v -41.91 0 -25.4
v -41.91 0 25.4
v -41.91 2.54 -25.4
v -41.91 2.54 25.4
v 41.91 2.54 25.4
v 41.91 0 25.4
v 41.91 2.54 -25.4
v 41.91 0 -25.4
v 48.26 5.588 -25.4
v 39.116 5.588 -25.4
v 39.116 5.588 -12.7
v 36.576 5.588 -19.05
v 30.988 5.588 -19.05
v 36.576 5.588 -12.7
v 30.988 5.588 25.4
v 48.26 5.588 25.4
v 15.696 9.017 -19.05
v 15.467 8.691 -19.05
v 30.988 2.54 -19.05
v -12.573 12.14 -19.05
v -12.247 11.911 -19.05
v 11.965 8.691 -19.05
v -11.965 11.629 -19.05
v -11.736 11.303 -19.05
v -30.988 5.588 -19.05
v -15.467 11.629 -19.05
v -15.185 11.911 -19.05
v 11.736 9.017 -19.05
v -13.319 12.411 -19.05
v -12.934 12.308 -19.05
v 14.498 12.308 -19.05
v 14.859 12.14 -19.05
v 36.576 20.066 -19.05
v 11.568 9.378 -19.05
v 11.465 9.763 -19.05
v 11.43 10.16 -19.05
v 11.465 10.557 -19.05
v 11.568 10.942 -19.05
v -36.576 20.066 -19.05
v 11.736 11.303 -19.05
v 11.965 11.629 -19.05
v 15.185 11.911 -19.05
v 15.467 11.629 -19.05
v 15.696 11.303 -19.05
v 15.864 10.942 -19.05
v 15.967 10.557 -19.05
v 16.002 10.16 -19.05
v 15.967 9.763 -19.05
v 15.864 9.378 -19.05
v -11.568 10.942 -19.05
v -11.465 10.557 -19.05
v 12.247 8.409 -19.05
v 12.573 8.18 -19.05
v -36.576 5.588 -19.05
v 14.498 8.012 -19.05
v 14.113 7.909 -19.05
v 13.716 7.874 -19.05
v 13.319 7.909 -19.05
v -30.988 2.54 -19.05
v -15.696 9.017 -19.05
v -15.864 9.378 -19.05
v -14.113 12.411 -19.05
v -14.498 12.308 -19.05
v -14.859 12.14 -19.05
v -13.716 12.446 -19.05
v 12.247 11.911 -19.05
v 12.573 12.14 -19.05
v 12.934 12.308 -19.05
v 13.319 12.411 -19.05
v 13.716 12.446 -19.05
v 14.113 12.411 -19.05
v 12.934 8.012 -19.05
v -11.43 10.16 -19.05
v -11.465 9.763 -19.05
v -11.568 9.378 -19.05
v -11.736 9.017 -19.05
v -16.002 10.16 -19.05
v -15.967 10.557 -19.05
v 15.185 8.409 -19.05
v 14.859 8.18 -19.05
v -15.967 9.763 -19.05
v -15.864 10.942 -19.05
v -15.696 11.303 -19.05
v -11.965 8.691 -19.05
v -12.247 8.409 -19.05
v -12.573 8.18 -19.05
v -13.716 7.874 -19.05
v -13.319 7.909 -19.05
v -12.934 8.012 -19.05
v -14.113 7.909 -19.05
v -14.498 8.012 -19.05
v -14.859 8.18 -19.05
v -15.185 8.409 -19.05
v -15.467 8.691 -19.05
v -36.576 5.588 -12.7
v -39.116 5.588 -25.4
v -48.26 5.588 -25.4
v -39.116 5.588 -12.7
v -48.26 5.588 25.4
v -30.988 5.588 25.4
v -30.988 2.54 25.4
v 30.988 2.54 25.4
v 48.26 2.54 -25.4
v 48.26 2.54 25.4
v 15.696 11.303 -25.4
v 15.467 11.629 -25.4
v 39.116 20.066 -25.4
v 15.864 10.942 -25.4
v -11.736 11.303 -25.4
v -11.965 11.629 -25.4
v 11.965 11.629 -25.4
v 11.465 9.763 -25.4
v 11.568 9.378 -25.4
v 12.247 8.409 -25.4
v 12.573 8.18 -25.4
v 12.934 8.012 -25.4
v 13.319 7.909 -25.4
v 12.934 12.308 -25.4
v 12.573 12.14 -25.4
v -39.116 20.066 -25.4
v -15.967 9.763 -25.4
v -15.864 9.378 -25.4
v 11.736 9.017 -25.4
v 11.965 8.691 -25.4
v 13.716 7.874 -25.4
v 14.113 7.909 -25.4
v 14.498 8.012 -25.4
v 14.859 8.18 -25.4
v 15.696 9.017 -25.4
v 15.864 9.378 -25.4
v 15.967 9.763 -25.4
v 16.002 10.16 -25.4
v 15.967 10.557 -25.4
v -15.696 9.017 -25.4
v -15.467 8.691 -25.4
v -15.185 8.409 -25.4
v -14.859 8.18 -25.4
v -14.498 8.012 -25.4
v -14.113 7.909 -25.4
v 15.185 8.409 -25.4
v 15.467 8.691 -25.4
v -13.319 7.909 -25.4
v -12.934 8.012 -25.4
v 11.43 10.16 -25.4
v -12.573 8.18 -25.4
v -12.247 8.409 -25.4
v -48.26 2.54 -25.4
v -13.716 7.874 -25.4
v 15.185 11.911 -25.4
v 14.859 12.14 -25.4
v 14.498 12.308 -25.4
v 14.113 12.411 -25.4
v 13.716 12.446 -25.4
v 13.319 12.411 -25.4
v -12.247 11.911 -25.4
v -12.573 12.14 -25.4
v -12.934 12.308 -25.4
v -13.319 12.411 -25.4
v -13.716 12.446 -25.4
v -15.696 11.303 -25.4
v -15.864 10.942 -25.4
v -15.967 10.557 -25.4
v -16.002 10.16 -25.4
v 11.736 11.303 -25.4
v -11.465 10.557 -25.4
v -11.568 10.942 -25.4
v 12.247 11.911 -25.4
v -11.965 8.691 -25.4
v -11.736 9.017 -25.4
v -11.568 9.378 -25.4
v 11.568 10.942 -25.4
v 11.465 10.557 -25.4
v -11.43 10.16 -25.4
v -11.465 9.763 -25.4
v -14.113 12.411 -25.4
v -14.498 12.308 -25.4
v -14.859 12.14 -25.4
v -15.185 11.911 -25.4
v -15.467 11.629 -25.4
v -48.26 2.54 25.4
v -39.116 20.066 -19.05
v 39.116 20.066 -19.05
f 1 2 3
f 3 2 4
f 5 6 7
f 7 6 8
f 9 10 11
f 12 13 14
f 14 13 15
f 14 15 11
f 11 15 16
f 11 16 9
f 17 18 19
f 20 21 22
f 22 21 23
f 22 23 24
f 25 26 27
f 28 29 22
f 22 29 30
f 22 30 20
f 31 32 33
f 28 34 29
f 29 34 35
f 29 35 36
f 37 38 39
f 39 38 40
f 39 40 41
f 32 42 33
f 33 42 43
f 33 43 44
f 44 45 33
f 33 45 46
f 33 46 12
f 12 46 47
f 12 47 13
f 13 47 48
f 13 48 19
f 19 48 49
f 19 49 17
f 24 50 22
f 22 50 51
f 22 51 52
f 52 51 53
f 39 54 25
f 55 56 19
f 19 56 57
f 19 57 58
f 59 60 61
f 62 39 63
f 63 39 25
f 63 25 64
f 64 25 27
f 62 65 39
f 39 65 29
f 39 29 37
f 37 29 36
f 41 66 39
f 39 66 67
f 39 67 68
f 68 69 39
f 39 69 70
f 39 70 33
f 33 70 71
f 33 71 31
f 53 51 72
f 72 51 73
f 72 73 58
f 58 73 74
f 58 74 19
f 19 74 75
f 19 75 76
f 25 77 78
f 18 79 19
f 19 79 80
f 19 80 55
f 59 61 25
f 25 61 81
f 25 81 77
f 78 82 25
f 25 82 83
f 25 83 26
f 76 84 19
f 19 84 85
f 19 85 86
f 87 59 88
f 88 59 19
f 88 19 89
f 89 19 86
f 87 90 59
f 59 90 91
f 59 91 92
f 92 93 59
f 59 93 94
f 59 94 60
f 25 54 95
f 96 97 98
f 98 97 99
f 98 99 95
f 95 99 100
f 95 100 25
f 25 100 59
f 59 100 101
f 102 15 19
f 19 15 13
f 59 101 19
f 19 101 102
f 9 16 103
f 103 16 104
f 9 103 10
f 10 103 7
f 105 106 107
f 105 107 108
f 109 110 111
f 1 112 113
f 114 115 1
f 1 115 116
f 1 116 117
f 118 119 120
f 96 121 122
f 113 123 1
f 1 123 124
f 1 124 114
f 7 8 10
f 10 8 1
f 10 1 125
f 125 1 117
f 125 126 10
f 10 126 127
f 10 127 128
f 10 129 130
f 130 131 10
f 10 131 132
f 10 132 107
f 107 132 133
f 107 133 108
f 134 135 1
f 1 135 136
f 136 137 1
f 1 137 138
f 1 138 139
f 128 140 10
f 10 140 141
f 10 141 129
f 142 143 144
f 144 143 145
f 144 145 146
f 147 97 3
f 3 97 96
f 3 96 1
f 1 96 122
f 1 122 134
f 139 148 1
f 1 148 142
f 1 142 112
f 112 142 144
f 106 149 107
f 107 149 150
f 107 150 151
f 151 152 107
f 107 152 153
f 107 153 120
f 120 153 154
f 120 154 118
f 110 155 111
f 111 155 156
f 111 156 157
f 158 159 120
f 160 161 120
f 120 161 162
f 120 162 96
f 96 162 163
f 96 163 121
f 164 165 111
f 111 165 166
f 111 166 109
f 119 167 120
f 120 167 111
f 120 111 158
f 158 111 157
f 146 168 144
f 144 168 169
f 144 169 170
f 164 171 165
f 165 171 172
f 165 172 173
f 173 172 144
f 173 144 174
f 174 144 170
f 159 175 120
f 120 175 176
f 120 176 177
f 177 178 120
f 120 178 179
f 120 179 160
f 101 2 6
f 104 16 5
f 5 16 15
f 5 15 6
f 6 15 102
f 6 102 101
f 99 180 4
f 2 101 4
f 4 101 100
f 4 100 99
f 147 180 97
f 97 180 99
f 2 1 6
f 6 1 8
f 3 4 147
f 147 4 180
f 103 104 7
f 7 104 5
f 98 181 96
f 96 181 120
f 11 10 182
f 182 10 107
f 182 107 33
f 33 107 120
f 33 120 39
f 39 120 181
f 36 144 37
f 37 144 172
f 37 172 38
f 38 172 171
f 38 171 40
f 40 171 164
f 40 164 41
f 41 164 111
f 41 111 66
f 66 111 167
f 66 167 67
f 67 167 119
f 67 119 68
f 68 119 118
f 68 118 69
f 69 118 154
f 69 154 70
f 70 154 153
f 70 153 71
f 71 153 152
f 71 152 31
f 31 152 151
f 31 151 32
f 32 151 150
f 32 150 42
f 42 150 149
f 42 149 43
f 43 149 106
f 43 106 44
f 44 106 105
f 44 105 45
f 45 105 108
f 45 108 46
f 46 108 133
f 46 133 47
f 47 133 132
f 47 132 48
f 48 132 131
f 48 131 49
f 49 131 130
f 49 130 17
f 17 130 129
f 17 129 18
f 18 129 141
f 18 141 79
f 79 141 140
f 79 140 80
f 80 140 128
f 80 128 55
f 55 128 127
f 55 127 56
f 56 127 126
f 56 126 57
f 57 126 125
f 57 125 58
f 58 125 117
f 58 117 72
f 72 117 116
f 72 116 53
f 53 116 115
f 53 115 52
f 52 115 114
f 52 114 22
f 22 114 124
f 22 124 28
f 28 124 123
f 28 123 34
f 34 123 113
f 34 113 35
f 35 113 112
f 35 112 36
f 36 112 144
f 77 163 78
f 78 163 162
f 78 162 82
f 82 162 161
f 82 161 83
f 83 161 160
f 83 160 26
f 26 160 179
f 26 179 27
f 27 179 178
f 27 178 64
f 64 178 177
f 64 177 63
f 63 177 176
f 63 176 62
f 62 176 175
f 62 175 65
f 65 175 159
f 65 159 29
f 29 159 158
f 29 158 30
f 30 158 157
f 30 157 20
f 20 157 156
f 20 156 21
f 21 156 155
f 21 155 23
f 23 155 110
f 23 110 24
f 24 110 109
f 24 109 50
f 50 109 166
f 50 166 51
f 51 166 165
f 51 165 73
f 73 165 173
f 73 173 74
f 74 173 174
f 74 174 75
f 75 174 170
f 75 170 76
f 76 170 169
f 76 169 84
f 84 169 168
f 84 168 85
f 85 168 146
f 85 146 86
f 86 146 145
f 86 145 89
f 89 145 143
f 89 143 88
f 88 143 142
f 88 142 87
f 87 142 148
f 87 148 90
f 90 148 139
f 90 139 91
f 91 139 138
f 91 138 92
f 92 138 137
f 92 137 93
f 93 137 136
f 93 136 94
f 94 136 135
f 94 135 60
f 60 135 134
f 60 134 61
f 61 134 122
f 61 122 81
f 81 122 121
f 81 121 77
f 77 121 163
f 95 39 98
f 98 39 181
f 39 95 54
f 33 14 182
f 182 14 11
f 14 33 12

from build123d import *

# Parameters (mm, degrees)
SKETCH1_W           = 96.52
SKETCH1_H           = 50.8
BOSS_EXTRUDE1_DEPTH = 5.588
SKETCH2_W           = 61.976
SKETCH2_H           = 50.8
CUT_EXTRUDE2_DEPTH  = 3.048
SKETCH3_W           = 6.35
SKETCH3_H           = 50.8
CUT_EXTRUDE3_DEPTH  = 2.54
SKETCH4_W           = 78.232
SKETCH4_H           = 6.35
BOSS_EXTRUDE2_DEPTH = 17.526
SKETCH5_R           = 2.286
CUT_EXTRUDE4_DEPTH  = 51.8
BOSS_EXTRUDE3_DEPTH = 2.54
BOSS_EXTRUDE4_DEPTH = 2.54
SKETCH8_W           = 6.35
SKETCH8_H           = 8.89
CUT_EXTRUDE5_DEPTH  = 6.588
SKETCH9_W           = 6.35
SKETCH9_H           = 3.048
BOSS_EXTRUDE5_DEPTH = 8.89


with BuildPart() as part:
    # Sketch1 → Boss-Extrude1 (new body)
    with BuildSketch(Plane(origin=(0, 0, 0), x_dir=(1, 0, 0), z_dir=(0, 1, 0))):
        Rectangle(SKETCH1_W, SKETCH1_H)
    extrude(amount=BOSS_EXTRUDE1_DEPTH)

    # Sketch2 → Cut-Extrude2 (cut)
    with BuildSketch(Plane(origin=(0, 5.588, 0), x_dir=(1, 0, 0), z_dir=(0, 1, 0))):
        Rectangle(SKETCH2_W, SKETCH2_H)
    extrude(amount=-CUT_EXTRUDE2_DEPTH, mode=Mode.SUBTRACT)

    # Sketch3 → Cut-Extrude3 (cut)
    with BuildSketch(Plane(origin=(0, 0, 0), x_dir=(-1, 0, 0), z_dir=(0, -1, 0))):
        with Locations((-45.085, 0)):
            Rectangle(SKETCH3_W, SKETCH3_H)
        with Locations((45.085, 0)):
            Rectangle(SKETCH3_W, SKETCH3_H)
    extrude(amount=-CUT_EXTRUDE3_DEPTH, mode=Mode.SUBTRACT)

    # Sketch4 → Boss-Extrude2 (add)
    with BuildSketch(Plane(origin=(0, 2.54, 0), x_dir=(1, 0, 0), z_dir=(0, 1, 0))):
        with Locations((0, 22.225)):
            Rectangle(SKETCH4_W, SKETCH4_H)
    extrude(amount=BOSS_EXTRUDE2_DEPTH)

    # Sketch5 → Cut-Extrude4 (cut, through all)
    with BuildSketch(Plane(origin=(0, 0, -25.4), x_dir=(-1, 0, 0), z_dir=(0, 0, -1))):
        with Locations((13.716, 10.16)):
            Circle(SKETCH5_R)
        with Locations((-13.716, 10.16)):
            Circle(SKETCH5_R)
    extrude(amount=-CUT_EXTRUDE4_DEPTH, mode=Mode.SUBTRACT)

    # Sketch6 → Boss-Extrude3 (add)
    with BuildSketch(Plane.ZY.offset(39.116)):
        Polygon((-19.05, 5.588), (-12.7, 5.588), (-19.05, 20.066), align=None)
    extrude(amount=-BOSS_EXTRUDE3_DEPTH)

    # Sketch7 → Boss-Extrude4 (add)
    with BuildSketch(Plane(origin=(39.116, 0, 0), x_dir=(0, 0, -1), z_dir=(1, 0, 0))):
        Polygon((19.05, 5.588), (19.05, 20.066), (12.7, 5.588), align=None)
    extrude(amount=-BOSS_EXTRUDE4_DEPTH)

    # Sketch8 → Cut-Extrude5 (cut, through all)
    with BuildSketch(Plane(origin=(0, 5.588, 0), x_dir=(1, 0, 0), z_dir=(0, 1, 0))):
        with Locations((45.085, 20.955)):
            Rectangle(SKETCH8_W, SKETCH8_H)
        with Locations((-45.085, 20.955)):
            Rectangle(SKETCH8_W, SKETCH8_H)
    extrude(amount=-CUT_EXTRUDE5_DEPTH, mode=Mode.SUBTRACT)

    # Sketch9 → Boss-Extrude5 (add)
    with BuildSketch(Plane(origin=(0, 0, -16.51), x_dir=(-1, 0, 0), z_dir=(0, 0, -1))):
        with Locations((-45.085, 4.064)):
            Rectangle(SKETCH9_W, SKETCH9_H)
        with Locations((45.085, 4.064)):
            Rectangle(SKETCH9_W, SKETCH9_H)
    extrude(amount=BOSS_EXTRUDE5_DEPTH)


solid = part.part
